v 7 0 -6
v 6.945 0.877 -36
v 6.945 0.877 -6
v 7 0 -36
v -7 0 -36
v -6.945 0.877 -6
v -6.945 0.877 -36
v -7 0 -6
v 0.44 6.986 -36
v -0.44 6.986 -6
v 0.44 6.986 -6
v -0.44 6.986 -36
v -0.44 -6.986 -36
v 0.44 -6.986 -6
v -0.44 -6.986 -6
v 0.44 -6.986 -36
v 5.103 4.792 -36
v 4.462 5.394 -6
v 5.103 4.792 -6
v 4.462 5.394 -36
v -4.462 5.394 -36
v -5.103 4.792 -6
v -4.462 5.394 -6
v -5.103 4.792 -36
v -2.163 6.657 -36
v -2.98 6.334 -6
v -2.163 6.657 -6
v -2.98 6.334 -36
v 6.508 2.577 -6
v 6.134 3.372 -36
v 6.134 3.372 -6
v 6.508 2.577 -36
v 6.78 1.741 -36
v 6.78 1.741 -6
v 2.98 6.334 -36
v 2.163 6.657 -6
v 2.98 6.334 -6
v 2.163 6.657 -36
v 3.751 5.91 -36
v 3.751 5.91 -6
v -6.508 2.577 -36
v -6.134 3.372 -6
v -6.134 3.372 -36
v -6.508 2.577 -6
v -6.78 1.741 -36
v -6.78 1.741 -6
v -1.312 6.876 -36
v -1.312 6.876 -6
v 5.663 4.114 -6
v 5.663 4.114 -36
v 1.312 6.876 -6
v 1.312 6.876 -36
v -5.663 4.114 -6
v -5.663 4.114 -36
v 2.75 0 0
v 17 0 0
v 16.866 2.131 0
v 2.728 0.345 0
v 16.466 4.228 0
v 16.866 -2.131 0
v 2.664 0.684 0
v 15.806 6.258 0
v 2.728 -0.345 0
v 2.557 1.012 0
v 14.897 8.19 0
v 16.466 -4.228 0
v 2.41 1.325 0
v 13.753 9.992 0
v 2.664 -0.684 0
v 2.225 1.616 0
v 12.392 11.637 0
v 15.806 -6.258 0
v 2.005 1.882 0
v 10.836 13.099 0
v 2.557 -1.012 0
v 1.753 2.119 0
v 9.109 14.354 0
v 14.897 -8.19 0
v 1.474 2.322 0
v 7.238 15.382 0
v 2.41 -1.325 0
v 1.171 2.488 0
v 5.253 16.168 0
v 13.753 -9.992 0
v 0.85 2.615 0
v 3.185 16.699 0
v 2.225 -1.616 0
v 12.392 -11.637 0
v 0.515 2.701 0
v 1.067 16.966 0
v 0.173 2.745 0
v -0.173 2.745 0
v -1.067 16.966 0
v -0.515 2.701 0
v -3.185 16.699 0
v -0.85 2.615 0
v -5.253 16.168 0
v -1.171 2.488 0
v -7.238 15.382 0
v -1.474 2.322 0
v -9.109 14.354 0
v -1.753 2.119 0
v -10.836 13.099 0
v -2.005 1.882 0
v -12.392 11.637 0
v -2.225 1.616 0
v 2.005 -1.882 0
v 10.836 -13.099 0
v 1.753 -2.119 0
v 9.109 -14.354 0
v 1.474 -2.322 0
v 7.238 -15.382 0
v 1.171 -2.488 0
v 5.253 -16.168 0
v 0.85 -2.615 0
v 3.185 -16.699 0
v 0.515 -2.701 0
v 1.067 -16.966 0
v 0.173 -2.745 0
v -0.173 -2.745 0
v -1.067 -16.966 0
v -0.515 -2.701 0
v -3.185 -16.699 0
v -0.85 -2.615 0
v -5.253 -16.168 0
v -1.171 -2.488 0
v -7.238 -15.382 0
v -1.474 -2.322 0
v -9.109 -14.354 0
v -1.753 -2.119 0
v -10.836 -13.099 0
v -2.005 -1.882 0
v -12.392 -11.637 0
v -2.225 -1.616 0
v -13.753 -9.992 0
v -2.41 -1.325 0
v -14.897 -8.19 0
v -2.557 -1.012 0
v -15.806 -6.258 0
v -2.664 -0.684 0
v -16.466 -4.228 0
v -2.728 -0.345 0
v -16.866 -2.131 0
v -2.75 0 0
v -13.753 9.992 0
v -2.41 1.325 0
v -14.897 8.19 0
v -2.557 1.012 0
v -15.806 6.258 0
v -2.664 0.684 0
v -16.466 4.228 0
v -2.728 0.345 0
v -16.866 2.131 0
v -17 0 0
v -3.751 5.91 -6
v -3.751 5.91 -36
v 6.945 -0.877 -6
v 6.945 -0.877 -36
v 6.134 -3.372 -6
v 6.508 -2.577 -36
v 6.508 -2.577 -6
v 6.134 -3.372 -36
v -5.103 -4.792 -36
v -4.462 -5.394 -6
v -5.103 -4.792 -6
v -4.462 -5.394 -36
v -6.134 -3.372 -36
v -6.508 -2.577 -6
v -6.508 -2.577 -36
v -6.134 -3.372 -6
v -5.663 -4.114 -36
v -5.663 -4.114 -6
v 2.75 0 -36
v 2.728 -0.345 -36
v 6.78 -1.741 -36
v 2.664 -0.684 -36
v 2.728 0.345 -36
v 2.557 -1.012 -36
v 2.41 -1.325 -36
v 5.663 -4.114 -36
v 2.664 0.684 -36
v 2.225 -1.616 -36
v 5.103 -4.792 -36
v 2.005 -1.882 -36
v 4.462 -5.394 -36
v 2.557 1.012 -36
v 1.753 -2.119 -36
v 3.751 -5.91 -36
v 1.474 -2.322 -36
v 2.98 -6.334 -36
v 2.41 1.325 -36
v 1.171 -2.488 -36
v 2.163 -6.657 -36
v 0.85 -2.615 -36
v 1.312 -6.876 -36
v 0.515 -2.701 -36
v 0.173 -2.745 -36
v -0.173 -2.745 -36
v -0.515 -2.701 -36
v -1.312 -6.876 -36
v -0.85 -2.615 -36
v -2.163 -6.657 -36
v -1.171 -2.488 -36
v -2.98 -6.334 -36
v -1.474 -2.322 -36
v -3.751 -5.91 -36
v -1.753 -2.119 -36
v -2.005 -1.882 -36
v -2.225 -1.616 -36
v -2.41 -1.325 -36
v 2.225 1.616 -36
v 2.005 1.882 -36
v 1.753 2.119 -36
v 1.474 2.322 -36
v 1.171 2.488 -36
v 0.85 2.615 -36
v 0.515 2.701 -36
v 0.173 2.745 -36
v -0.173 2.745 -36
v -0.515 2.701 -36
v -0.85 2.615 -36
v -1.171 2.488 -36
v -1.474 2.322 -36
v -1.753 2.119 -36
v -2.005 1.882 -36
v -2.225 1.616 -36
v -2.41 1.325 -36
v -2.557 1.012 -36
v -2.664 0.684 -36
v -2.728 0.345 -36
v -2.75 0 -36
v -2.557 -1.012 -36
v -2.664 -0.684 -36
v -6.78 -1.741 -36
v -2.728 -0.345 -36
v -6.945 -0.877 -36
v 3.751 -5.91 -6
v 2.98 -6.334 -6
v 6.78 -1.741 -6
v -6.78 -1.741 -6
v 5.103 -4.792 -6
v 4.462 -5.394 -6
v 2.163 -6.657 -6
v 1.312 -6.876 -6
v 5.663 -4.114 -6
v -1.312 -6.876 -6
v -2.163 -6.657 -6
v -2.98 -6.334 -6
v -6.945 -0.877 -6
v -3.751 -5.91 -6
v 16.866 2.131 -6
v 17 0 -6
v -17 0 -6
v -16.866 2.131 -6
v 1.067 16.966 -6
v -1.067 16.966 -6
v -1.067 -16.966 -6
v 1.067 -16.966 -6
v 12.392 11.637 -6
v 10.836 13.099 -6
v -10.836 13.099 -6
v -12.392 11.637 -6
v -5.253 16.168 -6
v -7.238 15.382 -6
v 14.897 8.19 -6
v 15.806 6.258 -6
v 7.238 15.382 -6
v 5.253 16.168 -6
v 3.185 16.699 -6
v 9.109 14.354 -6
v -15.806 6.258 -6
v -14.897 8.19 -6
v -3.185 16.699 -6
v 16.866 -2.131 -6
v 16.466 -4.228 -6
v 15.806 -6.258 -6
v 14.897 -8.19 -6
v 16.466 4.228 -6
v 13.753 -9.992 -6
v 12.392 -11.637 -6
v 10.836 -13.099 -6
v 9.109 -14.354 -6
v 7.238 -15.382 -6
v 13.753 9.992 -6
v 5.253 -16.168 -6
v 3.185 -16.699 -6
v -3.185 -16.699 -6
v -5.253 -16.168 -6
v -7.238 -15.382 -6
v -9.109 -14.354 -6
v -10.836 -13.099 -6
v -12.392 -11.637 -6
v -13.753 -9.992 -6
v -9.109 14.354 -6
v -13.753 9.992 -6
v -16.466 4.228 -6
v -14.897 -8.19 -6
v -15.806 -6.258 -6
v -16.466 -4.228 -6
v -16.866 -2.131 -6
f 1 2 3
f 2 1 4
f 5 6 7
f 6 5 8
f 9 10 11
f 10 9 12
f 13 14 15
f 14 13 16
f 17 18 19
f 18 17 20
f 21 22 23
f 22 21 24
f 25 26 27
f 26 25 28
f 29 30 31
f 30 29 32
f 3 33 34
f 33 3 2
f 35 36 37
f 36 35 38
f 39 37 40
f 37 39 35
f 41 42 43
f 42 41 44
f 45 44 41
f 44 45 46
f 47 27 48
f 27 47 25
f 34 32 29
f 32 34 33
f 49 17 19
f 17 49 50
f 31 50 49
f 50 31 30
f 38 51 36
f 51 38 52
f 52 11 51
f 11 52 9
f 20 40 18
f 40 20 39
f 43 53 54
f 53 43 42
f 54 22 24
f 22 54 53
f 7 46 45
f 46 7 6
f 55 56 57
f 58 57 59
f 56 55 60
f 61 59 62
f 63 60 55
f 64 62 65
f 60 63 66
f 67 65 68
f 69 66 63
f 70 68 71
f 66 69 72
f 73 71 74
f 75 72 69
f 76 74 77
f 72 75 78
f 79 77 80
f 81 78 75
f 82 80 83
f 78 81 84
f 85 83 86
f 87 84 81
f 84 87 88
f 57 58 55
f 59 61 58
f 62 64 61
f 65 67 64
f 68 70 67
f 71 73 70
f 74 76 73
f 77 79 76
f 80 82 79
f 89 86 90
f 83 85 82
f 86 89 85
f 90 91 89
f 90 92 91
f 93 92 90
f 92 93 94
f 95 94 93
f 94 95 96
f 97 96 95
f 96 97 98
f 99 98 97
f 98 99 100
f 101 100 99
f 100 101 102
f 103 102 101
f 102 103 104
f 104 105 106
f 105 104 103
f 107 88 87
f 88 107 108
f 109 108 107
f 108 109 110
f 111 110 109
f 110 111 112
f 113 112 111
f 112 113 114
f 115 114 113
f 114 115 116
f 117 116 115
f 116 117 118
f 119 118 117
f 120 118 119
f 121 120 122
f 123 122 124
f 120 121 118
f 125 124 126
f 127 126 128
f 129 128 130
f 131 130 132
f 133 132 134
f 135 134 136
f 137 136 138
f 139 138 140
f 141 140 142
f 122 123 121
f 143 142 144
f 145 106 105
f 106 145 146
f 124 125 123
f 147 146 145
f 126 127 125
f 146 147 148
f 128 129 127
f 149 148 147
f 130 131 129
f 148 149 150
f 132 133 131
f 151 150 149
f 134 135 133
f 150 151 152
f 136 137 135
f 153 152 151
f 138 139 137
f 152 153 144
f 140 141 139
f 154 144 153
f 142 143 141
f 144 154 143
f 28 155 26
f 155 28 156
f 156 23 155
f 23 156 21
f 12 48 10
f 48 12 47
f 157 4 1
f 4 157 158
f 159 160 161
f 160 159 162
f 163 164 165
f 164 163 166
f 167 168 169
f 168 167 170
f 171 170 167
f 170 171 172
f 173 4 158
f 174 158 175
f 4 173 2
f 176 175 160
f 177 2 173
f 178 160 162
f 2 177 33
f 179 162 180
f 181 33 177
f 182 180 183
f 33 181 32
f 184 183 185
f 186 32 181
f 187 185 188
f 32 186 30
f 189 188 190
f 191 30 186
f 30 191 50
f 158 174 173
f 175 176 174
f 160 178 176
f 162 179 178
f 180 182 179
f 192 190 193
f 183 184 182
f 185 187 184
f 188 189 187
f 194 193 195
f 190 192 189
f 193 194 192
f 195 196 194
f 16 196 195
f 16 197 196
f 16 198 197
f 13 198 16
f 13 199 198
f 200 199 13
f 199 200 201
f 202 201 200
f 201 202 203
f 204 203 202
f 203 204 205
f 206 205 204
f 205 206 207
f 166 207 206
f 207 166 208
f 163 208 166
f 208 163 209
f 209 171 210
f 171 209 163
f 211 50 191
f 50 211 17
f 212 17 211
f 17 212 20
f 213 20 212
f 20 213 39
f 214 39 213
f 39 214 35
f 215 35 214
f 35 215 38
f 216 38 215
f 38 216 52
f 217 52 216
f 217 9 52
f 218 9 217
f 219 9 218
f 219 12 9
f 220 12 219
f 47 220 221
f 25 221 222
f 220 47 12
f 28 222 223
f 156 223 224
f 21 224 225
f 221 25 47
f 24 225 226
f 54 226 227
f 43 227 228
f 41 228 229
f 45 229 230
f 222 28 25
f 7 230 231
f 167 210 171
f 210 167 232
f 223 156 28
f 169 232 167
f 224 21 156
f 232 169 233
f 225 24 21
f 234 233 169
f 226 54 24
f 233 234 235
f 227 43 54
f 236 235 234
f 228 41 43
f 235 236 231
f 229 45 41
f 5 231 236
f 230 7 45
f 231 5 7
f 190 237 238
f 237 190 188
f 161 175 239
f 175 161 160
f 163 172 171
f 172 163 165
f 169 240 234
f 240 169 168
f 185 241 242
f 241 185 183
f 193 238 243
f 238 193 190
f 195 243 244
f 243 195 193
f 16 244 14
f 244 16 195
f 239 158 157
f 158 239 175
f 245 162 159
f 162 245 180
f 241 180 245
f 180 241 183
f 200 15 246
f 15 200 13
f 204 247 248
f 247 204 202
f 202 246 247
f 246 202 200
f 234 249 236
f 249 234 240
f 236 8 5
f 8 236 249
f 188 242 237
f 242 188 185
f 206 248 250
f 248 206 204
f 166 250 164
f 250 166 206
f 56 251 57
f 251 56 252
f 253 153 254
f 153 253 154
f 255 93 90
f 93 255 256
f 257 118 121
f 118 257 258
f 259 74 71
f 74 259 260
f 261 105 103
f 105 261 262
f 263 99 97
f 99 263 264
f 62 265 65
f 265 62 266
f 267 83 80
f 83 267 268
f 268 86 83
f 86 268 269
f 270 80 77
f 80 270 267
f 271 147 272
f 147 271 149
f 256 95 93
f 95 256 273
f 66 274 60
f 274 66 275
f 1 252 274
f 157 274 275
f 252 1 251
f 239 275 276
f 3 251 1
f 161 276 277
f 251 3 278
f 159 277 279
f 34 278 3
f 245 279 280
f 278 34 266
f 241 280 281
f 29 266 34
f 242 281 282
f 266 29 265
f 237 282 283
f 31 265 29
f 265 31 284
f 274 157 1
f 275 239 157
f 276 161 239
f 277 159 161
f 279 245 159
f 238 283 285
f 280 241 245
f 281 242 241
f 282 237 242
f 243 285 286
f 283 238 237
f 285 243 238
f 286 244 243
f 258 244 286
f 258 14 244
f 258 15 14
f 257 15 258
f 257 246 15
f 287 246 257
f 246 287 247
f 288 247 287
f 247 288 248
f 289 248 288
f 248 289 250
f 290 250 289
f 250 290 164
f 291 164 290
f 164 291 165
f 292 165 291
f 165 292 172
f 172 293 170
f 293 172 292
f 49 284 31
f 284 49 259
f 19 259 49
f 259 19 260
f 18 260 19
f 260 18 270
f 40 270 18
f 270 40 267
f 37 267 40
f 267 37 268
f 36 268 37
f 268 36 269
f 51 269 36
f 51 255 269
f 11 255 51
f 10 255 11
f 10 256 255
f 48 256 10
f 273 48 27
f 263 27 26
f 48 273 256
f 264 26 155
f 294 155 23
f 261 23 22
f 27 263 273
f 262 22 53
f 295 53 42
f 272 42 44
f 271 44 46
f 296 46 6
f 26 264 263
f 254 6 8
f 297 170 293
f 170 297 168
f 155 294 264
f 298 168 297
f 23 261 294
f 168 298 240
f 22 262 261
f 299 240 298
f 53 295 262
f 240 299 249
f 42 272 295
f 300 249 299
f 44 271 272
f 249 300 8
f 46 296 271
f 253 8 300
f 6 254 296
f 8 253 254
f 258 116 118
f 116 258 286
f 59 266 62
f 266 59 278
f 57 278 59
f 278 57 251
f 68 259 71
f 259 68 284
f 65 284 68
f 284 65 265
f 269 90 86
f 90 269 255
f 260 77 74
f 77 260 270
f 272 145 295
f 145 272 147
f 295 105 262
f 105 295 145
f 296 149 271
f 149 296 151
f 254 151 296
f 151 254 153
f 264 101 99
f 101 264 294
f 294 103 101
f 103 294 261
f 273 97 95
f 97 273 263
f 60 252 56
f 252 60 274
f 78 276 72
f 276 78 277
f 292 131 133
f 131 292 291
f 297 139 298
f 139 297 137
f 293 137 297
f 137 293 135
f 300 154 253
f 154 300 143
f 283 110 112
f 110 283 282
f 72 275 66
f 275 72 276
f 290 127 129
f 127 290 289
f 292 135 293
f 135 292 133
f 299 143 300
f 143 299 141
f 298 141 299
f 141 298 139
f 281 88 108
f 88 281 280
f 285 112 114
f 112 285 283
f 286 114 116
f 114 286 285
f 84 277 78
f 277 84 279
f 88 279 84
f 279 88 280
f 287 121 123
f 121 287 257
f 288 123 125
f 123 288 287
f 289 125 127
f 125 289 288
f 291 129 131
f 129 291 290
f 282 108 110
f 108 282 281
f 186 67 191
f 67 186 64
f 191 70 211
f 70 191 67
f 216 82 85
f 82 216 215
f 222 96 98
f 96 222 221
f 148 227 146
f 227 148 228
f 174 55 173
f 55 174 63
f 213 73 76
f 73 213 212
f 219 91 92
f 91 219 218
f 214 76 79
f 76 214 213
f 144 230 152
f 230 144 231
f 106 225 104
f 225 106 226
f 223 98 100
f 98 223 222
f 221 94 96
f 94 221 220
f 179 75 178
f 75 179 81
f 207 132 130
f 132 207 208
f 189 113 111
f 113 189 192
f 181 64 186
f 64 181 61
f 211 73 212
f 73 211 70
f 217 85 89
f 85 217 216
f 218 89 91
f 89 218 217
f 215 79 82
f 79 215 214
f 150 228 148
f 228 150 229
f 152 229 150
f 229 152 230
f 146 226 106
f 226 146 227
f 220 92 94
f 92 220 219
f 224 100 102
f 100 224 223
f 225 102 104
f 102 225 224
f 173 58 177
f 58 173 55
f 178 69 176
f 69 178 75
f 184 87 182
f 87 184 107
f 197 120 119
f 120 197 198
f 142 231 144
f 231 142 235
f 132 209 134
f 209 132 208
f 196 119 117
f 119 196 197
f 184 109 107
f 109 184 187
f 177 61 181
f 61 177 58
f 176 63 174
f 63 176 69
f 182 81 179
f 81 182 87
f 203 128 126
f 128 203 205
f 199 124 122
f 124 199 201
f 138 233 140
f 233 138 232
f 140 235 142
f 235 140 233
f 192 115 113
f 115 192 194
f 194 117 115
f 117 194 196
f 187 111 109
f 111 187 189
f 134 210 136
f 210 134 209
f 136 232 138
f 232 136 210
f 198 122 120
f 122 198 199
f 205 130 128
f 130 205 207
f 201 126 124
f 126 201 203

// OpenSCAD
$fn = 50;


difference() {
	union() {
		translate(v = [0, 0, -36.0000000000]) {
			cylinder(h = 36, r = 7.0000000000);
		}
		translate(v = [0, 0, -6.0000000000]) {
			cylinder(h = 6, r = 17.0000000000);
		}
	}
	union() {
		#translate(v = [0, 0, -36]) {
			cylinder(h = 36, r = 2.7500000000);
		}
	}
}
